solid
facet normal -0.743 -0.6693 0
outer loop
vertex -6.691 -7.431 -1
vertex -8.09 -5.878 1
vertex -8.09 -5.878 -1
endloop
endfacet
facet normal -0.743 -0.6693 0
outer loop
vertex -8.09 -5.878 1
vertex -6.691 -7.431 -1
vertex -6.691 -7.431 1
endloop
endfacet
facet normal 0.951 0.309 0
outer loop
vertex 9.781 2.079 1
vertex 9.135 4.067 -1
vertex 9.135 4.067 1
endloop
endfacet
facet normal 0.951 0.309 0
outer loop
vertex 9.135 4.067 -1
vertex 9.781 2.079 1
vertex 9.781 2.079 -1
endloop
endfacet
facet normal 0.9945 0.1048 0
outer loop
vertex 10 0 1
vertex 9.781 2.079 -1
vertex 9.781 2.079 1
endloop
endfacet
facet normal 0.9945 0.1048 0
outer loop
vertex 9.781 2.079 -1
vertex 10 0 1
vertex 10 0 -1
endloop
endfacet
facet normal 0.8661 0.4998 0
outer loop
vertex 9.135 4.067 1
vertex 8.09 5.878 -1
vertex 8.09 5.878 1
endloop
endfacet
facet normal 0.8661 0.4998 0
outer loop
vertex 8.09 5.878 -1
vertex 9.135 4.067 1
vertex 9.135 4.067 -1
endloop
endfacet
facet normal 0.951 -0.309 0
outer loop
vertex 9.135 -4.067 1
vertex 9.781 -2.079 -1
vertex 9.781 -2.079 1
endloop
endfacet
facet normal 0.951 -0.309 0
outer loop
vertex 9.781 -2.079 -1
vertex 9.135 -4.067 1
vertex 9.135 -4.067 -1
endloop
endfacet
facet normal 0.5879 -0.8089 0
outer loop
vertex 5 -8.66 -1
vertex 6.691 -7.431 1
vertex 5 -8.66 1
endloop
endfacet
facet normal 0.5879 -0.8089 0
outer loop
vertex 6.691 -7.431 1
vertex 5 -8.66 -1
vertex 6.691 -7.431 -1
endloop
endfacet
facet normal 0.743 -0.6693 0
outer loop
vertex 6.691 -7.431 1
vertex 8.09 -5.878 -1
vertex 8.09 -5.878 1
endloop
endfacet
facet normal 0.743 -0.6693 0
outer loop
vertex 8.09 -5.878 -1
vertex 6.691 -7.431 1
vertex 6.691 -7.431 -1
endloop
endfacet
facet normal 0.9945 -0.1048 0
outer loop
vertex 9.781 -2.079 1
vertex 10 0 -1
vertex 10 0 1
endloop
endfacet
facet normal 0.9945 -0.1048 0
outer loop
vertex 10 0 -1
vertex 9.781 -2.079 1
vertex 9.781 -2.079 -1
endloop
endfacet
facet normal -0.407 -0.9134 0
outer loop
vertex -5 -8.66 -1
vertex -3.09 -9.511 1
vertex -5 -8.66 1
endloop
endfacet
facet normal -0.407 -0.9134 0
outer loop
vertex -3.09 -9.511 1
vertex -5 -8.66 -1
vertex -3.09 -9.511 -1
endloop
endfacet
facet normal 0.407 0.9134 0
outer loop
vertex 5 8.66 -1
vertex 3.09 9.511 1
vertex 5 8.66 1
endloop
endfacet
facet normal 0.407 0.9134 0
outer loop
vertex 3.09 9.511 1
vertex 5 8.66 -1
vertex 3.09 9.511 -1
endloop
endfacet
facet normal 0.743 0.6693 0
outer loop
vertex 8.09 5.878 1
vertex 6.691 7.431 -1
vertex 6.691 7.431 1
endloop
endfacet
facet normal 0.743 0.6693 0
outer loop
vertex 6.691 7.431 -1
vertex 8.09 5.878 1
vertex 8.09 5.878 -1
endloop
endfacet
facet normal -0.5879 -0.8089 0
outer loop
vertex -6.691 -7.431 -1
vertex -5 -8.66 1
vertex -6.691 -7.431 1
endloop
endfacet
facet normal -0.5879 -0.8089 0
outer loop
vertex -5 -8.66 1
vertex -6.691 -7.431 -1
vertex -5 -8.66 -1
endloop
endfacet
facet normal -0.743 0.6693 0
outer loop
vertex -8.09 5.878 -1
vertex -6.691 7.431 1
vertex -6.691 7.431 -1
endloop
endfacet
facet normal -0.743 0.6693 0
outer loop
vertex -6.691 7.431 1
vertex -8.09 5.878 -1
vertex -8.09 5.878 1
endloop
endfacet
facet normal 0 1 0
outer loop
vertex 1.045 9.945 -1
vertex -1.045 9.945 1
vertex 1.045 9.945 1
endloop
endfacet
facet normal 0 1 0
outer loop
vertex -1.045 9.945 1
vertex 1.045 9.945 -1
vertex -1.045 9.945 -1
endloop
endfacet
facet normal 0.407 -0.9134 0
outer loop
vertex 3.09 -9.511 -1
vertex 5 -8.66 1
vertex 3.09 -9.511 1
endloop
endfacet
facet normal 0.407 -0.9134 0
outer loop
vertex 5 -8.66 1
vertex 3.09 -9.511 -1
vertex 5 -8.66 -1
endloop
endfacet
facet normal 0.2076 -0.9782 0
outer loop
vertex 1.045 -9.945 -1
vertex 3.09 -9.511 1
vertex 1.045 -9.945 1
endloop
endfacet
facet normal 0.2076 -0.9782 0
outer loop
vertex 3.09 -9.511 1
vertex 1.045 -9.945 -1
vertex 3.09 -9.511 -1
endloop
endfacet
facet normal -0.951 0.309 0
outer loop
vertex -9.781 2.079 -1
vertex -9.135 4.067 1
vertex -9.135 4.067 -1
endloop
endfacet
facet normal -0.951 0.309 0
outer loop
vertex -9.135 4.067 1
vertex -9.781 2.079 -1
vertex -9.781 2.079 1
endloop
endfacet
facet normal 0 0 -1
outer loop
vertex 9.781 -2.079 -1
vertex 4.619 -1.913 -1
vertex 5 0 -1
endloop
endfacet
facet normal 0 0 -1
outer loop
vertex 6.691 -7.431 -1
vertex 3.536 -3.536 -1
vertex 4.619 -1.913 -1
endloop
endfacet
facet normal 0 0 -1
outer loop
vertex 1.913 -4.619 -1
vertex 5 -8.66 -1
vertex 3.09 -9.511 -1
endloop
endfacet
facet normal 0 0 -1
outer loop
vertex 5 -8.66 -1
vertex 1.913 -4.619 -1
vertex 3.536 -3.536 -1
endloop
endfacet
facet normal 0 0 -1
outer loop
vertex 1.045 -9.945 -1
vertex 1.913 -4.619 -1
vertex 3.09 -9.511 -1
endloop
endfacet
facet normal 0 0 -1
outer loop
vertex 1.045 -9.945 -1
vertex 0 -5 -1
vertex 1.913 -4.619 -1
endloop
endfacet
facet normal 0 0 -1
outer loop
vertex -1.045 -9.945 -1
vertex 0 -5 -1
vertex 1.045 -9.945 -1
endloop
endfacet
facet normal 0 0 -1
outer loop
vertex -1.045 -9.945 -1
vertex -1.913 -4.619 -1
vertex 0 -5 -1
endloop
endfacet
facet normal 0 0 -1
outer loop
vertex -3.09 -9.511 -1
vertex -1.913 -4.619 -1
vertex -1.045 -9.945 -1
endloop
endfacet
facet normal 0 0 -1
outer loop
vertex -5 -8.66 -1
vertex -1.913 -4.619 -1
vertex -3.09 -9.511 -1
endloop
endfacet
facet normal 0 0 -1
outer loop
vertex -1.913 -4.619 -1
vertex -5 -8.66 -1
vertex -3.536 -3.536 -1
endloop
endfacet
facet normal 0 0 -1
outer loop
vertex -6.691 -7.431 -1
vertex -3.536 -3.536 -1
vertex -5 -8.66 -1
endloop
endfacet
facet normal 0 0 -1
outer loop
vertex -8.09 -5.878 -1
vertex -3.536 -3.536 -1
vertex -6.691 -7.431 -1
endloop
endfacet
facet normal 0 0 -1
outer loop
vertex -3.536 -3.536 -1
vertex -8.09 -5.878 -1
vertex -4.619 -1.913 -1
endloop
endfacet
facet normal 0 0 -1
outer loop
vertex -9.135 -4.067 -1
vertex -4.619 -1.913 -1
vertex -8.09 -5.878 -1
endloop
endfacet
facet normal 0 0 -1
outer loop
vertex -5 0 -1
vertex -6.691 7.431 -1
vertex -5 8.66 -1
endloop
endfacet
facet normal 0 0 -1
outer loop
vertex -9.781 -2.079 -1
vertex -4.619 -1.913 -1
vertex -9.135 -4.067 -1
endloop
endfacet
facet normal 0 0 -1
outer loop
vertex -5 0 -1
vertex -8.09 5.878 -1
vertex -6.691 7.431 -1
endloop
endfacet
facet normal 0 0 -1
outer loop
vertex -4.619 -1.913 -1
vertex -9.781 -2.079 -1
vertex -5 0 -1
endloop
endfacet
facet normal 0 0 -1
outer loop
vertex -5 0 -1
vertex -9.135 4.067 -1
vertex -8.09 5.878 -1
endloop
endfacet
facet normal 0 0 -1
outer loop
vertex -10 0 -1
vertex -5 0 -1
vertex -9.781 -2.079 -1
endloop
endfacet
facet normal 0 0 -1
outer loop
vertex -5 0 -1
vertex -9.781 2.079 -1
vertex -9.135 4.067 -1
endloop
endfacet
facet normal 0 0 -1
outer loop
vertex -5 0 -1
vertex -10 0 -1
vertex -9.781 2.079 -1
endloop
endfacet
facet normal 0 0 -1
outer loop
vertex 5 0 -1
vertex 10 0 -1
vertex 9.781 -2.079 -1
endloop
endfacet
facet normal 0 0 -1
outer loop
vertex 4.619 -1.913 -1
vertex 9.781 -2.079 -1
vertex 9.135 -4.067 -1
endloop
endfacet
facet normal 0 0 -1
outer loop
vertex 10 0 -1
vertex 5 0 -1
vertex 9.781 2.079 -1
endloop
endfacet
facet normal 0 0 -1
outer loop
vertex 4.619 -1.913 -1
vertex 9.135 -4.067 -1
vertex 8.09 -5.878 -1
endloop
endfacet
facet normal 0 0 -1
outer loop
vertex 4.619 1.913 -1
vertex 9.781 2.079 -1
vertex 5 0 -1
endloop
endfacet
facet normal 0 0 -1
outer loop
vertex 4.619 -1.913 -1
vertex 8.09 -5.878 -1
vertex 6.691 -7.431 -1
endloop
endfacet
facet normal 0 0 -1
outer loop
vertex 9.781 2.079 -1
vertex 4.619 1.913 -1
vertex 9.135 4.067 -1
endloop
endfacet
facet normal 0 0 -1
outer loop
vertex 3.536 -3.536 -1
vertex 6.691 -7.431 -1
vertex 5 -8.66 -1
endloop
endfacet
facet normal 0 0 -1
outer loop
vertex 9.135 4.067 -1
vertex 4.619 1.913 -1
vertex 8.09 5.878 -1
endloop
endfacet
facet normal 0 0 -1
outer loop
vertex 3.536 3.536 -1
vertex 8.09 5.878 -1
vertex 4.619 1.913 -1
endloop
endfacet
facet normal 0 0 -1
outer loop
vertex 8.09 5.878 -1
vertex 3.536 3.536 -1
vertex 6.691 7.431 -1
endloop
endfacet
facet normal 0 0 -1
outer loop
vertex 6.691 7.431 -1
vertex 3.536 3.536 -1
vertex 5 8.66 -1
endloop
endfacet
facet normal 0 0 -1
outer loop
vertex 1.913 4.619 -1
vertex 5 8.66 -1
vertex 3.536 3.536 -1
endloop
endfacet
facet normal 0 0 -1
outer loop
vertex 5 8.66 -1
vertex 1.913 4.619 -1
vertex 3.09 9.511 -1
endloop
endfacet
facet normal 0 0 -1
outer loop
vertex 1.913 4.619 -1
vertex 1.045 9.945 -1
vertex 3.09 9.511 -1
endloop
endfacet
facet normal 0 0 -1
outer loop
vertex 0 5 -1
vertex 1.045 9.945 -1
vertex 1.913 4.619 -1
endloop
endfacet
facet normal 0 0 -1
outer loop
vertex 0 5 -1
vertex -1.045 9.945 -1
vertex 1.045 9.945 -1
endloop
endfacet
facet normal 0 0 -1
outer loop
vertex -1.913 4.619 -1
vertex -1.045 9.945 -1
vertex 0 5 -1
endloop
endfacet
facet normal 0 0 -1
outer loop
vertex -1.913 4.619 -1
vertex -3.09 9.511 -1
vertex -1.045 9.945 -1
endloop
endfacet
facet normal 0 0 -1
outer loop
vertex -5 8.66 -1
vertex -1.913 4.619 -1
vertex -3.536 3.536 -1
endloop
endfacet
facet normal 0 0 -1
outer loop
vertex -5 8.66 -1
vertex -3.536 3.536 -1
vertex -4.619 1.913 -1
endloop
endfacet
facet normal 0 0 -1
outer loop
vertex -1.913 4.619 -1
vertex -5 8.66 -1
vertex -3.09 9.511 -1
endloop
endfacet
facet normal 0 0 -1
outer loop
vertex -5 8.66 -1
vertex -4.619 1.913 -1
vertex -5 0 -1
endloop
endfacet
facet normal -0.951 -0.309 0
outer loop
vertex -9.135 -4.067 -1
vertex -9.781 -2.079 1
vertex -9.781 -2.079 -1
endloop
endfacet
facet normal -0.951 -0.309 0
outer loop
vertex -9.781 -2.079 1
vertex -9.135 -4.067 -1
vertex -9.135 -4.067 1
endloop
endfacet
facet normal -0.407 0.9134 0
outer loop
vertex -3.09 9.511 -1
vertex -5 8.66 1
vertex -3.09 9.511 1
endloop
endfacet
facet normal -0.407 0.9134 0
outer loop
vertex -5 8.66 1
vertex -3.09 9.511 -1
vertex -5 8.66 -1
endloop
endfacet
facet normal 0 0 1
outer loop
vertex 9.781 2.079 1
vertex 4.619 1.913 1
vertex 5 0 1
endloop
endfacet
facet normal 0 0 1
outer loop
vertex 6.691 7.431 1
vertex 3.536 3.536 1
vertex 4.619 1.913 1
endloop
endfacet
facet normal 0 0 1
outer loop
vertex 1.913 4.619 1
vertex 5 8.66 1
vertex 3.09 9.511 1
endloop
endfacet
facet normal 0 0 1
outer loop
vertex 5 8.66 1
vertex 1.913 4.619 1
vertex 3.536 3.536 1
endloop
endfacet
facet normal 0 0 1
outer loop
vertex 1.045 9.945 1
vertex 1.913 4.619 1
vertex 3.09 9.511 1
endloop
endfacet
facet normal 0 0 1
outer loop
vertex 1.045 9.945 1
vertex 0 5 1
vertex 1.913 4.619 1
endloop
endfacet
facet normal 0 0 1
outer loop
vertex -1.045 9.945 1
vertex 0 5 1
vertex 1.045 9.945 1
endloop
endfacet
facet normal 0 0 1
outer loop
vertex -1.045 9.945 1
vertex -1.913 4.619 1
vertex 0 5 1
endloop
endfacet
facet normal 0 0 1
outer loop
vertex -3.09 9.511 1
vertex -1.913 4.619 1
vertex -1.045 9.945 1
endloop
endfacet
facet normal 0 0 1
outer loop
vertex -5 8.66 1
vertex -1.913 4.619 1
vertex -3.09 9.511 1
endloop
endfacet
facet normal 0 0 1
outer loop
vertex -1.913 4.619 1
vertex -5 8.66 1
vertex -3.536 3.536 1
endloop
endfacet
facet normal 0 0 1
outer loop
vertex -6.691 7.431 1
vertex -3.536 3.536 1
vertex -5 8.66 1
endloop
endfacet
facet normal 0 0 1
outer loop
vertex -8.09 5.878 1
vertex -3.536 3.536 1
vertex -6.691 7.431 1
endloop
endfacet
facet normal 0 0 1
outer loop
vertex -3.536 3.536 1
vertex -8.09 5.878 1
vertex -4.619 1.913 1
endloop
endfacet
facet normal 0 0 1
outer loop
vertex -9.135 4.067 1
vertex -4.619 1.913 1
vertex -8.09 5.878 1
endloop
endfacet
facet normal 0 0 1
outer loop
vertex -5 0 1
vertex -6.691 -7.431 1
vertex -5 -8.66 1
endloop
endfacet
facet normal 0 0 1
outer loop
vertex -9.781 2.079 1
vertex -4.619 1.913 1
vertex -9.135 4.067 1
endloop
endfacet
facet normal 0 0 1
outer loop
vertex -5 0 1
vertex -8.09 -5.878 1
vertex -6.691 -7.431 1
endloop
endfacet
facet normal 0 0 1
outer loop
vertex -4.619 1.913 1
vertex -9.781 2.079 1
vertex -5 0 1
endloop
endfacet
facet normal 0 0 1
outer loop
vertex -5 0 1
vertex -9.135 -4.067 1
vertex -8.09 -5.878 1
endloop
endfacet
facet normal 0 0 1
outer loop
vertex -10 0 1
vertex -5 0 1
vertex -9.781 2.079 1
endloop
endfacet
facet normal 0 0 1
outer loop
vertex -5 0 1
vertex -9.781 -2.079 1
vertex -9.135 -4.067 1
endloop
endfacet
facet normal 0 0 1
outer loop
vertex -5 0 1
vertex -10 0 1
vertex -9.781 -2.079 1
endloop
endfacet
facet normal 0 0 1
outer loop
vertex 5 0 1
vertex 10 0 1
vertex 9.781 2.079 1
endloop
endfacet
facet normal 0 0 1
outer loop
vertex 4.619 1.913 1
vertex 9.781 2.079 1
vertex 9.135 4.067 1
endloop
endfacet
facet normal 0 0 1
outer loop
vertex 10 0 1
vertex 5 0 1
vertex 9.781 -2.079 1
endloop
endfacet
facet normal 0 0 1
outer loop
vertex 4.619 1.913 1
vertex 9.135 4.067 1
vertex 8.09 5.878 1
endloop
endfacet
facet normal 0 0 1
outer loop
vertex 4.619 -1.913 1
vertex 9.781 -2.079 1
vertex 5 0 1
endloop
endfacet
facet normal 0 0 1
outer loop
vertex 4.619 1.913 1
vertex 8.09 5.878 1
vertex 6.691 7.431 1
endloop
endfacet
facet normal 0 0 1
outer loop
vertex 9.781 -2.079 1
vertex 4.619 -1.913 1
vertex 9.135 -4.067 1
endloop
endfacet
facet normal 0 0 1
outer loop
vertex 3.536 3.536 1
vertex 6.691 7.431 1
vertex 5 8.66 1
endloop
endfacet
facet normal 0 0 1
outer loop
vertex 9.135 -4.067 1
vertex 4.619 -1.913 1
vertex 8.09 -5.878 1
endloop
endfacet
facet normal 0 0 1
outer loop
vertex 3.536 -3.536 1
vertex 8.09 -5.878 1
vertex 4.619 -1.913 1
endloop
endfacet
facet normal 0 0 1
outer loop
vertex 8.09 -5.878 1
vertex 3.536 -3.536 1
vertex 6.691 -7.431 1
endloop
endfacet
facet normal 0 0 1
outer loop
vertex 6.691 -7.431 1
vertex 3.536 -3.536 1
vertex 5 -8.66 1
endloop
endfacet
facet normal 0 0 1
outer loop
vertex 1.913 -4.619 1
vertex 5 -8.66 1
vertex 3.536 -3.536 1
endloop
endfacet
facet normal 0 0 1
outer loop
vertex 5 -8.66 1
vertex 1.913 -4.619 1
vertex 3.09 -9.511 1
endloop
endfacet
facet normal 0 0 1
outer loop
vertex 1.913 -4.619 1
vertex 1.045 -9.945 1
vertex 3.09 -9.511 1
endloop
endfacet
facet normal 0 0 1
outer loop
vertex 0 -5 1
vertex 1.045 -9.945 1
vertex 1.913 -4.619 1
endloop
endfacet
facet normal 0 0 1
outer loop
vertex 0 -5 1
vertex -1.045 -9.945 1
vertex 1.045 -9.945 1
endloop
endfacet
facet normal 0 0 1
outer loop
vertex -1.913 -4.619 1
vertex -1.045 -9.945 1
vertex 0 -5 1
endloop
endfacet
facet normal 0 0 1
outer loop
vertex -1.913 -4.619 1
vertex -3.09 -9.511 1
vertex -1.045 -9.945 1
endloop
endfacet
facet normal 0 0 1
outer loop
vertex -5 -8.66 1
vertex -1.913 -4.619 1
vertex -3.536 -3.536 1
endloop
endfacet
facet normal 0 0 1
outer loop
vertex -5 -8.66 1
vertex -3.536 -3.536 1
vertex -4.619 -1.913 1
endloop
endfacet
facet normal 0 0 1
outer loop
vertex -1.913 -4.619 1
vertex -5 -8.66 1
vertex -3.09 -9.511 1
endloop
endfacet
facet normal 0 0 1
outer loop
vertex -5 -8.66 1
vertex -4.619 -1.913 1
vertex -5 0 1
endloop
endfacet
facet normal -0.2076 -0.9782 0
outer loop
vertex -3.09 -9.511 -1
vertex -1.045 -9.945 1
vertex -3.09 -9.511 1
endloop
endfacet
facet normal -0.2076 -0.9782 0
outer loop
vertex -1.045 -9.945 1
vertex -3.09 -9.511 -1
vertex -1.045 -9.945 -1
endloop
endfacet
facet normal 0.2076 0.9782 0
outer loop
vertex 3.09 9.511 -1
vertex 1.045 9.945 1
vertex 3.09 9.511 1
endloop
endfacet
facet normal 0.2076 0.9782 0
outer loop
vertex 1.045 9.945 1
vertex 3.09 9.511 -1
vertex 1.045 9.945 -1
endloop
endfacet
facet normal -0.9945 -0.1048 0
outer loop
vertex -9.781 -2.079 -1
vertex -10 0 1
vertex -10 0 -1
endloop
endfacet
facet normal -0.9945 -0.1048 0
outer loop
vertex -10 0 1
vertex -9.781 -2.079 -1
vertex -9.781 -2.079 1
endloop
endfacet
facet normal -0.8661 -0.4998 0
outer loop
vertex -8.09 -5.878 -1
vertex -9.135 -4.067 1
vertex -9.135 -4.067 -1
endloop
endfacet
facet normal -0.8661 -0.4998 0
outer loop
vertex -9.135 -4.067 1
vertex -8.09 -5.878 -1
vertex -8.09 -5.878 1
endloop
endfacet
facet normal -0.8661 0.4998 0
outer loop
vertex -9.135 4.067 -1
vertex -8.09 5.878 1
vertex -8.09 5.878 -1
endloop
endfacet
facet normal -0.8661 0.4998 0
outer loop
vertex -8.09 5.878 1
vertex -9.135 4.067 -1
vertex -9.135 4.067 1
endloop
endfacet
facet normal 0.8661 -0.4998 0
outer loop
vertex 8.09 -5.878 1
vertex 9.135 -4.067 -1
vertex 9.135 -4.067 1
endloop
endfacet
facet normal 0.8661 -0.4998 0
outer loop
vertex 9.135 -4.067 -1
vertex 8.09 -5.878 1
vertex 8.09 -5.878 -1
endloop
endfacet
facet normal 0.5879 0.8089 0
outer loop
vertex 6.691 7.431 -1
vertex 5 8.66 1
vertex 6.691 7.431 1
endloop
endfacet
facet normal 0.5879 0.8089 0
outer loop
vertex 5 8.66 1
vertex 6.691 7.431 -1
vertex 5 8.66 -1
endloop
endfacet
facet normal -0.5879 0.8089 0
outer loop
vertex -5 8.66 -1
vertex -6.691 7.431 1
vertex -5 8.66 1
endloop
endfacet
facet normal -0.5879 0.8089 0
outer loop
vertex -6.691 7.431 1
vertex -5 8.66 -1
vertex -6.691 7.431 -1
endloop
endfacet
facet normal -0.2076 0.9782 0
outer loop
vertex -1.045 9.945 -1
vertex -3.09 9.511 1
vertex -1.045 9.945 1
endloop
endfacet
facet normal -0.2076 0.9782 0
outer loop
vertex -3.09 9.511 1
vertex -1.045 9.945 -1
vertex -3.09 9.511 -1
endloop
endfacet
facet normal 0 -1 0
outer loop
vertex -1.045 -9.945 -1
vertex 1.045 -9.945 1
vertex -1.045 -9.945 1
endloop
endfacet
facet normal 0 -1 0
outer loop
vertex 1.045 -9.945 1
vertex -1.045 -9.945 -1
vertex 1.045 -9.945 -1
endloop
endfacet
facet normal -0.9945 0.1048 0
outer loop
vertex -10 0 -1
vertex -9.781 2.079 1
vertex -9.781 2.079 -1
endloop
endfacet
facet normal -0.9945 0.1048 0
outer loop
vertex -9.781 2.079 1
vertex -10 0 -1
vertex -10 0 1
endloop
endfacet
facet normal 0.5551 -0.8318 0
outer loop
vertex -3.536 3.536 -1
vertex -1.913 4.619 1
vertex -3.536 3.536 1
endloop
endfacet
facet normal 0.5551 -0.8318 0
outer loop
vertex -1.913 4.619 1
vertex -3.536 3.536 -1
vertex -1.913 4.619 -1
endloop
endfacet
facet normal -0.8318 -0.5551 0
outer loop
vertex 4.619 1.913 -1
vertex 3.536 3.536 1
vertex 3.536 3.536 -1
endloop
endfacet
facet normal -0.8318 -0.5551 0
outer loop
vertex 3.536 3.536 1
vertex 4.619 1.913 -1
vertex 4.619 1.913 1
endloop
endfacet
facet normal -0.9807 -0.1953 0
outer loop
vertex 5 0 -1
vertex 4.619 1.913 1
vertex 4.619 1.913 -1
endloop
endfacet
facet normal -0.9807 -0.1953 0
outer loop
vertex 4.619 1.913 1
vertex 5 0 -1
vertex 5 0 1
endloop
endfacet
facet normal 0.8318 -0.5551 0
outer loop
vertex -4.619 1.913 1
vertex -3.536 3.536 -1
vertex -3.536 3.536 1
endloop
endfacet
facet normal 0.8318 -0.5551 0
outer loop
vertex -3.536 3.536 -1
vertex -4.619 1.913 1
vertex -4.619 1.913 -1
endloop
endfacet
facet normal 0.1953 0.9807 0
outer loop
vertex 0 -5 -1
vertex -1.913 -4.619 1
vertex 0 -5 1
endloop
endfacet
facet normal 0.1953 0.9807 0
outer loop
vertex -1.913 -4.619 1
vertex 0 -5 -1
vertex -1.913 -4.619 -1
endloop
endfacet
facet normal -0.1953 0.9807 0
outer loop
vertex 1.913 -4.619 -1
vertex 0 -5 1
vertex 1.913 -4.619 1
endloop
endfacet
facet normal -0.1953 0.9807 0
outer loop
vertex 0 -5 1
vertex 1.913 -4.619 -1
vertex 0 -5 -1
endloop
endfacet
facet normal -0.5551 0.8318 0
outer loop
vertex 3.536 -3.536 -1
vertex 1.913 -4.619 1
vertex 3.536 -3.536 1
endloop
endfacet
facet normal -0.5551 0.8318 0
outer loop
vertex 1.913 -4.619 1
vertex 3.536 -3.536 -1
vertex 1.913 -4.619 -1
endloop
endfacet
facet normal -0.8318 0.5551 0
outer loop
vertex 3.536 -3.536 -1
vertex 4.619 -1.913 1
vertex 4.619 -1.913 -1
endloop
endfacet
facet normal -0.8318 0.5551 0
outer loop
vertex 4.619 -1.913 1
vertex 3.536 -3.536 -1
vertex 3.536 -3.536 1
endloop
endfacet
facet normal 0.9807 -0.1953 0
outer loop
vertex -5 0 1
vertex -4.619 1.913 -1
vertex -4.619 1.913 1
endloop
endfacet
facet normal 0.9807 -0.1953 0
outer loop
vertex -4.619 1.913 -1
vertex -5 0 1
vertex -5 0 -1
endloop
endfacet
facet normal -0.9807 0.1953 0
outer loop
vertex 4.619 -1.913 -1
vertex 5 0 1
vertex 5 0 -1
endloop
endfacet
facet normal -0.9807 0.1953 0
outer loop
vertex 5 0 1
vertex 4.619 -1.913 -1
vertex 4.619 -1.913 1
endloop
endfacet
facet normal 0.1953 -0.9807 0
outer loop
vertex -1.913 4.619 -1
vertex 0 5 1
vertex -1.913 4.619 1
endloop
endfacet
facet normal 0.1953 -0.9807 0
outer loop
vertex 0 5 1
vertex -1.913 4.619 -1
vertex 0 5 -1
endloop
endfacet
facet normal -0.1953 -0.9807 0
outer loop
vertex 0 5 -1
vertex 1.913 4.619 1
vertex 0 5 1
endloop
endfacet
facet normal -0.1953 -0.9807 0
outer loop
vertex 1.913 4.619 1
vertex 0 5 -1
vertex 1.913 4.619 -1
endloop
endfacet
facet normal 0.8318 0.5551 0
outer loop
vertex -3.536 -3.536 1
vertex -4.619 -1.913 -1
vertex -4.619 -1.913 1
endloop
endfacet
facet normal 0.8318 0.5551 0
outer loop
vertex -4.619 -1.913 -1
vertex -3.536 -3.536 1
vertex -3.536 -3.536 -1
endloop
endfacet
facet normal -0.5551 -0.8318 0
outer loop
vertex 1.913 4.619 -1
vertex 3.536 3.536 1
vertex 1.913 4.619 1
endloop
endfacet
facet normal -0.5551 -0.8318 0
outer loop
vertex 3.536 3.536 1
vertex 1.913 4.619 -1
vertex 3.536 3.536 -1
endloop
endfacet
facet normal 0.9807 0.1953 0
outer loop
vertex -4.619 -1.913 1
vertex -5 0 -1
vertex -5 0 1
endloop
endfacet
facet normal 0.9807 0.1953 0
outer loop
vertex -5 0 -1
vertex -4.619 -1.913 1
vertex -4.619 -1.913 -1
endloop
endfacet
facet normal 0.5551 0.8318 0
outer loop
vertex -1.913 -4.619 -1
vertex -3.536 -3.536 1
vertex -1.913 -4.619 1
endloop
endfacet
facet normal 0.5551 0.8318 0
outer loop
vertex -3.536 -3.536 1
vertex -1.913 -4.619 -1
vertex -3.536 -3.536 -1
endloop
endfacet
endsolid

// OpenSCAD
// Parameters for the spacer ring
module spacer_ring(outer_diameter = 20, inner_diameter = 10, thickness = 2) {
    difference() {
        // Outer cylinder
        cylinder(d = outer_diameter, h = thickness, center = true);
        // Inner hole
        cylinder(d = inner_diameter, h = thickness + 1, center = true);
    }
}

// Render the spacer ring
spacer_ring();
